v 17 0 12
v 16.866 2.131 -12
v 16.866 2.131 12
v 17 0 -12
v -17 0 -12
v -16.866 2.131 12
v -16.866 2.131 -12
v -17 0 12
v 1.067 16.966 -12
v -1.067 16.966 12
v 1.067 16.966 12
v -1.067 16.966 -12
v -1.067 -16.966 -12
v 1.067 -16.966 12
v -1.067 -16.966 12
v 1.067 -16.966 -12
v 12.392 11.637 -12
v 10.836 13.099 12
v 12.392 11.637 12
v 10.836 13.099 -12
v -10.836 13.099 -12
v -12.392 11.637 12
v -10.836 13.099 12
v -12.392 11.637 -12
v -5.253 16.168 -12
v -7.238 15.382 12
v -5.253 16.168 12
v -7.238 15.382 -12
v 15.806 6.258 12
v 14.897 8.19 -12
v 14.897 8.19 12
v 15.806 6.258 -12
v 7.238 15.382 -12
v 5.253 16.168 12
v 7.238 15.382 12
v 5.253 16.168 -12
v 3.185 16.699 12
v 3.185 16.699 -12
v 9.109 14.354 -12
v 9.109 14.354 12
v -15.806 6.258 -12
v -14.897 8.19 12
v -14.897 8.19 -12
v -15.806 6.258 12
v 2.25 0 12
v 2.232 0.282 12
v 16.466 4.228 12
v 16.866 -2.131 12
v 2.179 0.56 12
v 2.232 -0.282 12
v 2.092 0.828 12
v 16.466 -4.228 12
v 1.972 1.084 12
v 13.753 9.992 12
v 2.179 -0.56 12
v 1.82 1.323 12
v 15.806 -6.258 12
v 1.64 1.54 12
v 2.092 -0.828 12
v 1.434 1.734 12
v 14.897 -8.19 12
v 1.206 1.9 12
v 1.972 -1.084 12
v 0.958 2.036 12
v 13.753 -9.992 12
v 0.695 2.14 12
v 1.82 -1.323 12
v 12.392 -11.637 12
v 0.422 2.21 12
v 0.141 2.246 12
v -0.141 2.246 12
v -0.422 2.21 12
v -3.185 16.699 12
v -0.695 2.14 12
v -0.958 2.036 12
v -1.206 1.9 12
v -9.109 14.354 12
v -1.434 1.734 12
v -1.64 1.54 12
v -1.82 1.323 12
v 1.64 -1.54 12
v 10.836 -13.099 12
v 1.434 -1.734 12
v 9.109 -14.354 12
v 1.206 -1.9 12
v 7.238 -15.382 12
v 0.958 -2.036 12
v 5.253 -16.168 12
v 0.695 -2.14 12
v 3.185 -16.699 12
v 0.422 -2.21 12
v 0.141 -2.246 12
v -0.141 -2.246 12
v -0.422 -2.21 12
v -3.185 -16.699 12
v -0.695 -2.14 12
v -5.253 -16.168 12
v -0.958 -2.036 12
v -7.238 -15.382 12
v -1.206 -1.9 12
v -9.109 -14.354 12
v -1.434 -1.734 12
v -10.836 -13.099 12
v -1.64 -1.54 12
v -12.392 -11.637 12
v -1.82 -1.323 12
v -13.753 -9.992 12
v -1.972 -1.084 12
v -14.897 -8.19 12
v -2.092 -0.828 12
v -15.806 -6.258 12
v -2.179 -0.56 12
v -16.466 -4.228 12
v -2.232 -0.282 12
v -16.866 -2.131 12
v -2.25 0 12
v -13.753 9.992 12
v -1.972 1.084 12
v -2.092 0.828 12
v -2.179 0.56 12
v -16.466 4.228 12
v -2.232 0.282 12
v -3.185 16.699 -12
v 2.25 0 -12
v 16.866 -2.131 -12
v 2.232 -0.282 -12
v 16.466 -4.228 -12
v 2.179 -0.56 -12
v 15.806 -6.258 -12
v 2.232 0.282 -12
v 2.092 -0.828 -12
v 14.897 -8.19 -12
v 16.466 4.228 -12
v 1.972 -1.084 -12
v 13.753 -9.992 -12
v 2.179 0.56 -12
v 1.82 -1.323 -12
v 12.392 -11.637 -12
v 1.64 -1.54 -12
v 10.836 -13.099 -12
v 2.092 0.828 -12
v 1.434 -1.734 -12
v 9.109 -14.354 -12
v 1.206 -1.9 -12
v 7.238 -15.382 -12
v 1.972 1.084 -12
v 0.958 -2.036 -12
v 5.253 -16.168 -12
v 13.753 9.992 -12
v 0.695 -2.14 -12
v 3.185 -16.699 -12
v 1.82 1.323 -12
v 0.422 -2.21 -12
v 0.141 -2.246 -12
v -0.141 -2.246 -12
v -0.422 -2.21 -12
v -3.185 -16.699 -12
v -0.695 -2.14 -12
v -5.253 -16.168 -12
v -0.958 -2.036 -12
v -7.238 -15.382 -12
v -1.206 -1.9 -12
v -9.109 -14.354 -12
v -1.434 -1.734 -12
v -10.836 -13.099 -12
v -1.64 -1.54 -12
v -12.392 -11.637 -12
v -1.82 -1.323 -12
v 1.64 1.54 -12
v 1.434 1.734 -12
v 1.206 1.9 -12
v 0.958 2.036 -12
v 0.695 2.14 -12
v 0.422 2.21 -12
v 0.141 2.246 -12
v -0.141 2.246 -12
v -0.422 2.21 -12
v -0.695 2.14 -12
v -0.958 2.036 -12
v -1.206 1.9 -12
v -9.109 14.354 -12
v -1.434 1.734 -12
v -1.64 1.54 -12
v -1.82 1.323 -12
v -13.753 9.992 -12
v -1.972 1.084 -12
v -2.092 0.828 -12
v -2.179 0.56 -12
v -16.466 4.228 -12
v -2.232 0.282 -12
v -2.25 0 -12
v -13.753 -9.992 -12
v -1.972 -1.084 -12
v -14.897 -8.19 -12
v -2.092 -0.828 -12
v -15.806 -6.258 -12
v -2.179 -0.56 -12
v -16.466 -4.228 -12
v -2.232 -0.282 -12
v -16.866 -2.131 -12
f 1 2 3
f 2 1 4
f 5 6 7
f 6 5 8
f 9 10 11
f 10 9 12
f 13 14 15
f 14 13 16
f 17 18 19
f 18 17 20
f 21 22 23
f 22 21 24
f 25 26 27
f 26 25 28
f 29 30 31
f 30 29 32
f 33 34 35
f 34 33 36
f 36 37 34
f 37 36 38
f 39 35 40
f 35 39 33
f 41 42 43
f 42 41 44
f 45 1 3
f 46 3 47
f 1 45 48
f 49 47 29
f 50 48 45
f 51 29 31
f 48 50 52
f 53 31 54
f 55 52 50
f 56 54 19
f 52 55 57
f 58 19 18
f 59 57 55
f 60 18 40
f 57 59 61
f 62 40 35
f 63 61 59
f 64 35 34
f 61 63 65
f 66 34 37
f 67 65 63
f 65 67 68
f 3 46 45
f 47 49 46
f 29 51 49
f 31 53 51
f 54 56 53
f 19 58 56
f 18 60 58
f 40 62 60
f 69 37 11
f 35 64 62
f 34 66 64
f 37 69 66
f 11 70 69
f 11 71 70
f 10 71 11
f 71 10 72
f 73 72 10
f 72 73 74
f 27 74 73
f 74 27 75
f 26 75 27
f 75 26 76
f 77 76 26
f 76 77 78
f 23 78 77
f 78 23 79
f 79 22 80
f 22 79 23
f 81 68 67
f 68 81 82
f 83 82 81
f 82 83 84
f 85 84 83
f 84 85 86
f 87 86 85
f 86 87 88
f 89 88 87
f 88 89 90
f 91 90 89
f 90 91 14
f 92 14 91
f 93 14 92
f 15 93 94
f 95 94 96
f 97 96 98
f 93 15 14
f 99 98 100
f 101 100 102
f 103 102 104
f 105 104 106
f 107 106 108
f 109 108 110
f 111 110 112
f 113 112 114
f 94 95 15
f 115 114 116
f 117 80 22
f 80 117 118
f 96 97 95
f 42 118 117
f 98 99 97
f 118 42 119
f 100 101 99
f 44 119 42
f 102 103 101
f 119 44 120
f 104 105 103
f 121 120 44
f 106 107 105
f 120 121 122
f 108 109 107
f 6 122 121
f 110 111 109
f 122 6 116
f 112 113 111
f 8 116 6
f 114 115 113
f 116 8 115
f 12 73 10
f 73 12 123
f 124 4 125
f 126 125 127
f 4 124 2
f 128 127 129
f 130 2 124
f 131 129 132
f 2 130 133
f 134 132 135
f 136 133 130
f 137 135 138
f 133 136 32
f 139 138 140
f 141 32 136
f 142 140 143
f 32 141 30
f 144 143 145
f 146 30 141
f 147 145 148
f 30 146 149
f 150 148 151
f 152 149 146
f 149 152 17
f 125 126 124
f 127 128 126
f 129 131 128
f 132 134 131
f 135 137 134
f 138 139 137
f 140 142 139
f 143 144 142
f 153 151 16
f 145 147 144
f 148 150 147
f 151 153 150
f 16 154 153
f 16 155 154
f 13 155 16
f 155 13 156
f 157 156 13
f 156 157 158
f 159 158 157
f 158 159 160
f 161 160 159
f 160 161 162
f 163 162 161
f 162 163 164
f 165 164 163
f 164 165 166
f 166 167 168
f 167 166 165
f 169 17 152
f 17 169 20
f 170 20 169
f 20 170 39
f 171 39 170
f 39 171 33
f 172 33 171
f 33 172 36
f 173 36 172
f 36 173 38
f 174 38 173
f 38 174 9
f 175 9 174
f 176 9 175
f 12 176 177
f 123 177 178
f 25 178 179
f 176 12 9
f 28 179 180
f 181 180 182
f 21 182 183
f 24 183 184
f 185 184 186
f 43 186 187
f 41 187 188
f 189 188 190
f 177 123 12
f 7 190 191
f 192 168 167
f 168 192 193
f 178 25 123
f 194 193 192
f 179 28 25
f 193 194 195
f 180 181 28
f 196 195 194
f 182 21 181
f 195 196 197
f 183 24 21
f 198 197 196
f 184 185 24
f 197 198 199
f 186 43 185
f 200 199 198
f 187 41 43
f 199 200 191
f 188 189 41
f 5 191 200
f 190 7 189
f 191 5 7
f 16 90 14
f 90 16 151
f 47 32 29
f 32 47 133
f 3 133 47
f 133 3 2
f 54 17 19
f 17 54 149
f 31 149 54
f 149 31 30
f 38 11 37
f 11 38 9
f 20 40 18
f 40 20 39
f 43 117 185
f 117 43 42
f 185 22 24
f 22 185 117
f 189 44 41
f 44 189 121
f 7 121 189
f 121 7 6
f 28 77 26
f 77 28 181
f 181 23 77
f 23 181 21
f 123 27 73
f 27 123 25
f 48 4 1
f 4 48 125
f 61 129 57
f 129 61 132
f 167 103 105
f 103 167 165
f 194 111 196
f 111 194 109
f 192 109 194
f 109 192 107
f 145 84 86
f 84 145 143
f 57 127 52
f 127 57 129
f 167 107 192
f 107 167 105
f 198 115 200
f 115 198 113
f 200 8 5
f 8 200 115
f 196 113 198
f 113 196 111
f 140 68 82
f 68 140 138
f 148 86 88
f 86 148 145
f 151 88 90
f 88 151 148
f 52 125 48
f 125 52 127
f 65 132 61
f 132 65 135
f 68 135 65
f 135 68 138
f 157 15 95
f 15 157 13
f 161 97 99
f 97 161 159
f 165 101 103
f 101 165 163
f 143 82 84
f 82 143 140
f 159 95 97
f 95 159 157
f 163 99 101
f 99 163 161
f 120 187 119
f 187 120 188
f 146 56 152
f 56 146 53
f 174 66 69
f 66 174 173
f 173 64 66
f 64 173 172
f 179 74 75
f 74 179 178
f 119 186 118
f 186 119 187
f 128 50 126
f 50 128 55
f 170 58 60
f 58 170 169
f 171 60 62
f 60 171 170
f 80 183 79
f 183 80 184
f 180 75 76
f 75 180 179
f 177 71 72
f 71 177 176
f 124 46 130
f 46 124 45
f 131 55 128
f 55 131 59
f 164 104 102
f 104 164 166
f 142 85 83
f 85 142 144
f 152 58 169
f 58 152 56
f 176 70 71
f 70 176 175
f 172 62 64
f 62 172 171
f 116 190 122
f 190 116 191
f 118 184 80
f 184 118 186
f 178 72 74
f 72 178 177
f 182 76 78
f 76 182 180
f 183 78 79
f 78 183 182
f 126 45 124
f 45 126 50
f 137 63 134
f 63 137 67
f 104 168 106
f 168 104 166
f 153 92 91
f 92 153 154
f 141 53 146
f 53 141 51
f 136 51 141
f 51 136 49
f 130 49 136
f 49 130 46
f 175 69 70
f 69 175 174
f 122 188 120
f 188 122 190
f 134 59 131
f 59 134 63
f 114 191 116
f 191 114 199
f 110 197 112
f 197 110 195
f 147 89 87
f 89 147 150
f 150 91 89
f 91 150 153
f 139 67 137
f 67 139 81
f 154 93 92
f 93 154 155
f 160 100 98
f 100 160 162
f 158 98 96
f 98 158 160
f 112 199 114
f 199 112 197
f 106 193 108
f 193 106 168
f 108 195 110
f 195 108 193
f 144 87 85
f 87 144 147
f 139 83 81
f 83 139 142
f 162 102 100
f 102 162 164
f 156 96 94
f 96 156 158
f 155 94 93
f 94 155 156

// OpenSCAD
$fn = 50;


difference() {
	union() {
		translate(v = [0, 0, -12.0000000000]) {
			cylinder(h = 24, r = 17.0000000000);
		}
	}
	union() {
		translate(v = [0, 0, -100.0000000000]) {
			cylinder(h = 200, r = 2.2500000000);
		}
	}
}
